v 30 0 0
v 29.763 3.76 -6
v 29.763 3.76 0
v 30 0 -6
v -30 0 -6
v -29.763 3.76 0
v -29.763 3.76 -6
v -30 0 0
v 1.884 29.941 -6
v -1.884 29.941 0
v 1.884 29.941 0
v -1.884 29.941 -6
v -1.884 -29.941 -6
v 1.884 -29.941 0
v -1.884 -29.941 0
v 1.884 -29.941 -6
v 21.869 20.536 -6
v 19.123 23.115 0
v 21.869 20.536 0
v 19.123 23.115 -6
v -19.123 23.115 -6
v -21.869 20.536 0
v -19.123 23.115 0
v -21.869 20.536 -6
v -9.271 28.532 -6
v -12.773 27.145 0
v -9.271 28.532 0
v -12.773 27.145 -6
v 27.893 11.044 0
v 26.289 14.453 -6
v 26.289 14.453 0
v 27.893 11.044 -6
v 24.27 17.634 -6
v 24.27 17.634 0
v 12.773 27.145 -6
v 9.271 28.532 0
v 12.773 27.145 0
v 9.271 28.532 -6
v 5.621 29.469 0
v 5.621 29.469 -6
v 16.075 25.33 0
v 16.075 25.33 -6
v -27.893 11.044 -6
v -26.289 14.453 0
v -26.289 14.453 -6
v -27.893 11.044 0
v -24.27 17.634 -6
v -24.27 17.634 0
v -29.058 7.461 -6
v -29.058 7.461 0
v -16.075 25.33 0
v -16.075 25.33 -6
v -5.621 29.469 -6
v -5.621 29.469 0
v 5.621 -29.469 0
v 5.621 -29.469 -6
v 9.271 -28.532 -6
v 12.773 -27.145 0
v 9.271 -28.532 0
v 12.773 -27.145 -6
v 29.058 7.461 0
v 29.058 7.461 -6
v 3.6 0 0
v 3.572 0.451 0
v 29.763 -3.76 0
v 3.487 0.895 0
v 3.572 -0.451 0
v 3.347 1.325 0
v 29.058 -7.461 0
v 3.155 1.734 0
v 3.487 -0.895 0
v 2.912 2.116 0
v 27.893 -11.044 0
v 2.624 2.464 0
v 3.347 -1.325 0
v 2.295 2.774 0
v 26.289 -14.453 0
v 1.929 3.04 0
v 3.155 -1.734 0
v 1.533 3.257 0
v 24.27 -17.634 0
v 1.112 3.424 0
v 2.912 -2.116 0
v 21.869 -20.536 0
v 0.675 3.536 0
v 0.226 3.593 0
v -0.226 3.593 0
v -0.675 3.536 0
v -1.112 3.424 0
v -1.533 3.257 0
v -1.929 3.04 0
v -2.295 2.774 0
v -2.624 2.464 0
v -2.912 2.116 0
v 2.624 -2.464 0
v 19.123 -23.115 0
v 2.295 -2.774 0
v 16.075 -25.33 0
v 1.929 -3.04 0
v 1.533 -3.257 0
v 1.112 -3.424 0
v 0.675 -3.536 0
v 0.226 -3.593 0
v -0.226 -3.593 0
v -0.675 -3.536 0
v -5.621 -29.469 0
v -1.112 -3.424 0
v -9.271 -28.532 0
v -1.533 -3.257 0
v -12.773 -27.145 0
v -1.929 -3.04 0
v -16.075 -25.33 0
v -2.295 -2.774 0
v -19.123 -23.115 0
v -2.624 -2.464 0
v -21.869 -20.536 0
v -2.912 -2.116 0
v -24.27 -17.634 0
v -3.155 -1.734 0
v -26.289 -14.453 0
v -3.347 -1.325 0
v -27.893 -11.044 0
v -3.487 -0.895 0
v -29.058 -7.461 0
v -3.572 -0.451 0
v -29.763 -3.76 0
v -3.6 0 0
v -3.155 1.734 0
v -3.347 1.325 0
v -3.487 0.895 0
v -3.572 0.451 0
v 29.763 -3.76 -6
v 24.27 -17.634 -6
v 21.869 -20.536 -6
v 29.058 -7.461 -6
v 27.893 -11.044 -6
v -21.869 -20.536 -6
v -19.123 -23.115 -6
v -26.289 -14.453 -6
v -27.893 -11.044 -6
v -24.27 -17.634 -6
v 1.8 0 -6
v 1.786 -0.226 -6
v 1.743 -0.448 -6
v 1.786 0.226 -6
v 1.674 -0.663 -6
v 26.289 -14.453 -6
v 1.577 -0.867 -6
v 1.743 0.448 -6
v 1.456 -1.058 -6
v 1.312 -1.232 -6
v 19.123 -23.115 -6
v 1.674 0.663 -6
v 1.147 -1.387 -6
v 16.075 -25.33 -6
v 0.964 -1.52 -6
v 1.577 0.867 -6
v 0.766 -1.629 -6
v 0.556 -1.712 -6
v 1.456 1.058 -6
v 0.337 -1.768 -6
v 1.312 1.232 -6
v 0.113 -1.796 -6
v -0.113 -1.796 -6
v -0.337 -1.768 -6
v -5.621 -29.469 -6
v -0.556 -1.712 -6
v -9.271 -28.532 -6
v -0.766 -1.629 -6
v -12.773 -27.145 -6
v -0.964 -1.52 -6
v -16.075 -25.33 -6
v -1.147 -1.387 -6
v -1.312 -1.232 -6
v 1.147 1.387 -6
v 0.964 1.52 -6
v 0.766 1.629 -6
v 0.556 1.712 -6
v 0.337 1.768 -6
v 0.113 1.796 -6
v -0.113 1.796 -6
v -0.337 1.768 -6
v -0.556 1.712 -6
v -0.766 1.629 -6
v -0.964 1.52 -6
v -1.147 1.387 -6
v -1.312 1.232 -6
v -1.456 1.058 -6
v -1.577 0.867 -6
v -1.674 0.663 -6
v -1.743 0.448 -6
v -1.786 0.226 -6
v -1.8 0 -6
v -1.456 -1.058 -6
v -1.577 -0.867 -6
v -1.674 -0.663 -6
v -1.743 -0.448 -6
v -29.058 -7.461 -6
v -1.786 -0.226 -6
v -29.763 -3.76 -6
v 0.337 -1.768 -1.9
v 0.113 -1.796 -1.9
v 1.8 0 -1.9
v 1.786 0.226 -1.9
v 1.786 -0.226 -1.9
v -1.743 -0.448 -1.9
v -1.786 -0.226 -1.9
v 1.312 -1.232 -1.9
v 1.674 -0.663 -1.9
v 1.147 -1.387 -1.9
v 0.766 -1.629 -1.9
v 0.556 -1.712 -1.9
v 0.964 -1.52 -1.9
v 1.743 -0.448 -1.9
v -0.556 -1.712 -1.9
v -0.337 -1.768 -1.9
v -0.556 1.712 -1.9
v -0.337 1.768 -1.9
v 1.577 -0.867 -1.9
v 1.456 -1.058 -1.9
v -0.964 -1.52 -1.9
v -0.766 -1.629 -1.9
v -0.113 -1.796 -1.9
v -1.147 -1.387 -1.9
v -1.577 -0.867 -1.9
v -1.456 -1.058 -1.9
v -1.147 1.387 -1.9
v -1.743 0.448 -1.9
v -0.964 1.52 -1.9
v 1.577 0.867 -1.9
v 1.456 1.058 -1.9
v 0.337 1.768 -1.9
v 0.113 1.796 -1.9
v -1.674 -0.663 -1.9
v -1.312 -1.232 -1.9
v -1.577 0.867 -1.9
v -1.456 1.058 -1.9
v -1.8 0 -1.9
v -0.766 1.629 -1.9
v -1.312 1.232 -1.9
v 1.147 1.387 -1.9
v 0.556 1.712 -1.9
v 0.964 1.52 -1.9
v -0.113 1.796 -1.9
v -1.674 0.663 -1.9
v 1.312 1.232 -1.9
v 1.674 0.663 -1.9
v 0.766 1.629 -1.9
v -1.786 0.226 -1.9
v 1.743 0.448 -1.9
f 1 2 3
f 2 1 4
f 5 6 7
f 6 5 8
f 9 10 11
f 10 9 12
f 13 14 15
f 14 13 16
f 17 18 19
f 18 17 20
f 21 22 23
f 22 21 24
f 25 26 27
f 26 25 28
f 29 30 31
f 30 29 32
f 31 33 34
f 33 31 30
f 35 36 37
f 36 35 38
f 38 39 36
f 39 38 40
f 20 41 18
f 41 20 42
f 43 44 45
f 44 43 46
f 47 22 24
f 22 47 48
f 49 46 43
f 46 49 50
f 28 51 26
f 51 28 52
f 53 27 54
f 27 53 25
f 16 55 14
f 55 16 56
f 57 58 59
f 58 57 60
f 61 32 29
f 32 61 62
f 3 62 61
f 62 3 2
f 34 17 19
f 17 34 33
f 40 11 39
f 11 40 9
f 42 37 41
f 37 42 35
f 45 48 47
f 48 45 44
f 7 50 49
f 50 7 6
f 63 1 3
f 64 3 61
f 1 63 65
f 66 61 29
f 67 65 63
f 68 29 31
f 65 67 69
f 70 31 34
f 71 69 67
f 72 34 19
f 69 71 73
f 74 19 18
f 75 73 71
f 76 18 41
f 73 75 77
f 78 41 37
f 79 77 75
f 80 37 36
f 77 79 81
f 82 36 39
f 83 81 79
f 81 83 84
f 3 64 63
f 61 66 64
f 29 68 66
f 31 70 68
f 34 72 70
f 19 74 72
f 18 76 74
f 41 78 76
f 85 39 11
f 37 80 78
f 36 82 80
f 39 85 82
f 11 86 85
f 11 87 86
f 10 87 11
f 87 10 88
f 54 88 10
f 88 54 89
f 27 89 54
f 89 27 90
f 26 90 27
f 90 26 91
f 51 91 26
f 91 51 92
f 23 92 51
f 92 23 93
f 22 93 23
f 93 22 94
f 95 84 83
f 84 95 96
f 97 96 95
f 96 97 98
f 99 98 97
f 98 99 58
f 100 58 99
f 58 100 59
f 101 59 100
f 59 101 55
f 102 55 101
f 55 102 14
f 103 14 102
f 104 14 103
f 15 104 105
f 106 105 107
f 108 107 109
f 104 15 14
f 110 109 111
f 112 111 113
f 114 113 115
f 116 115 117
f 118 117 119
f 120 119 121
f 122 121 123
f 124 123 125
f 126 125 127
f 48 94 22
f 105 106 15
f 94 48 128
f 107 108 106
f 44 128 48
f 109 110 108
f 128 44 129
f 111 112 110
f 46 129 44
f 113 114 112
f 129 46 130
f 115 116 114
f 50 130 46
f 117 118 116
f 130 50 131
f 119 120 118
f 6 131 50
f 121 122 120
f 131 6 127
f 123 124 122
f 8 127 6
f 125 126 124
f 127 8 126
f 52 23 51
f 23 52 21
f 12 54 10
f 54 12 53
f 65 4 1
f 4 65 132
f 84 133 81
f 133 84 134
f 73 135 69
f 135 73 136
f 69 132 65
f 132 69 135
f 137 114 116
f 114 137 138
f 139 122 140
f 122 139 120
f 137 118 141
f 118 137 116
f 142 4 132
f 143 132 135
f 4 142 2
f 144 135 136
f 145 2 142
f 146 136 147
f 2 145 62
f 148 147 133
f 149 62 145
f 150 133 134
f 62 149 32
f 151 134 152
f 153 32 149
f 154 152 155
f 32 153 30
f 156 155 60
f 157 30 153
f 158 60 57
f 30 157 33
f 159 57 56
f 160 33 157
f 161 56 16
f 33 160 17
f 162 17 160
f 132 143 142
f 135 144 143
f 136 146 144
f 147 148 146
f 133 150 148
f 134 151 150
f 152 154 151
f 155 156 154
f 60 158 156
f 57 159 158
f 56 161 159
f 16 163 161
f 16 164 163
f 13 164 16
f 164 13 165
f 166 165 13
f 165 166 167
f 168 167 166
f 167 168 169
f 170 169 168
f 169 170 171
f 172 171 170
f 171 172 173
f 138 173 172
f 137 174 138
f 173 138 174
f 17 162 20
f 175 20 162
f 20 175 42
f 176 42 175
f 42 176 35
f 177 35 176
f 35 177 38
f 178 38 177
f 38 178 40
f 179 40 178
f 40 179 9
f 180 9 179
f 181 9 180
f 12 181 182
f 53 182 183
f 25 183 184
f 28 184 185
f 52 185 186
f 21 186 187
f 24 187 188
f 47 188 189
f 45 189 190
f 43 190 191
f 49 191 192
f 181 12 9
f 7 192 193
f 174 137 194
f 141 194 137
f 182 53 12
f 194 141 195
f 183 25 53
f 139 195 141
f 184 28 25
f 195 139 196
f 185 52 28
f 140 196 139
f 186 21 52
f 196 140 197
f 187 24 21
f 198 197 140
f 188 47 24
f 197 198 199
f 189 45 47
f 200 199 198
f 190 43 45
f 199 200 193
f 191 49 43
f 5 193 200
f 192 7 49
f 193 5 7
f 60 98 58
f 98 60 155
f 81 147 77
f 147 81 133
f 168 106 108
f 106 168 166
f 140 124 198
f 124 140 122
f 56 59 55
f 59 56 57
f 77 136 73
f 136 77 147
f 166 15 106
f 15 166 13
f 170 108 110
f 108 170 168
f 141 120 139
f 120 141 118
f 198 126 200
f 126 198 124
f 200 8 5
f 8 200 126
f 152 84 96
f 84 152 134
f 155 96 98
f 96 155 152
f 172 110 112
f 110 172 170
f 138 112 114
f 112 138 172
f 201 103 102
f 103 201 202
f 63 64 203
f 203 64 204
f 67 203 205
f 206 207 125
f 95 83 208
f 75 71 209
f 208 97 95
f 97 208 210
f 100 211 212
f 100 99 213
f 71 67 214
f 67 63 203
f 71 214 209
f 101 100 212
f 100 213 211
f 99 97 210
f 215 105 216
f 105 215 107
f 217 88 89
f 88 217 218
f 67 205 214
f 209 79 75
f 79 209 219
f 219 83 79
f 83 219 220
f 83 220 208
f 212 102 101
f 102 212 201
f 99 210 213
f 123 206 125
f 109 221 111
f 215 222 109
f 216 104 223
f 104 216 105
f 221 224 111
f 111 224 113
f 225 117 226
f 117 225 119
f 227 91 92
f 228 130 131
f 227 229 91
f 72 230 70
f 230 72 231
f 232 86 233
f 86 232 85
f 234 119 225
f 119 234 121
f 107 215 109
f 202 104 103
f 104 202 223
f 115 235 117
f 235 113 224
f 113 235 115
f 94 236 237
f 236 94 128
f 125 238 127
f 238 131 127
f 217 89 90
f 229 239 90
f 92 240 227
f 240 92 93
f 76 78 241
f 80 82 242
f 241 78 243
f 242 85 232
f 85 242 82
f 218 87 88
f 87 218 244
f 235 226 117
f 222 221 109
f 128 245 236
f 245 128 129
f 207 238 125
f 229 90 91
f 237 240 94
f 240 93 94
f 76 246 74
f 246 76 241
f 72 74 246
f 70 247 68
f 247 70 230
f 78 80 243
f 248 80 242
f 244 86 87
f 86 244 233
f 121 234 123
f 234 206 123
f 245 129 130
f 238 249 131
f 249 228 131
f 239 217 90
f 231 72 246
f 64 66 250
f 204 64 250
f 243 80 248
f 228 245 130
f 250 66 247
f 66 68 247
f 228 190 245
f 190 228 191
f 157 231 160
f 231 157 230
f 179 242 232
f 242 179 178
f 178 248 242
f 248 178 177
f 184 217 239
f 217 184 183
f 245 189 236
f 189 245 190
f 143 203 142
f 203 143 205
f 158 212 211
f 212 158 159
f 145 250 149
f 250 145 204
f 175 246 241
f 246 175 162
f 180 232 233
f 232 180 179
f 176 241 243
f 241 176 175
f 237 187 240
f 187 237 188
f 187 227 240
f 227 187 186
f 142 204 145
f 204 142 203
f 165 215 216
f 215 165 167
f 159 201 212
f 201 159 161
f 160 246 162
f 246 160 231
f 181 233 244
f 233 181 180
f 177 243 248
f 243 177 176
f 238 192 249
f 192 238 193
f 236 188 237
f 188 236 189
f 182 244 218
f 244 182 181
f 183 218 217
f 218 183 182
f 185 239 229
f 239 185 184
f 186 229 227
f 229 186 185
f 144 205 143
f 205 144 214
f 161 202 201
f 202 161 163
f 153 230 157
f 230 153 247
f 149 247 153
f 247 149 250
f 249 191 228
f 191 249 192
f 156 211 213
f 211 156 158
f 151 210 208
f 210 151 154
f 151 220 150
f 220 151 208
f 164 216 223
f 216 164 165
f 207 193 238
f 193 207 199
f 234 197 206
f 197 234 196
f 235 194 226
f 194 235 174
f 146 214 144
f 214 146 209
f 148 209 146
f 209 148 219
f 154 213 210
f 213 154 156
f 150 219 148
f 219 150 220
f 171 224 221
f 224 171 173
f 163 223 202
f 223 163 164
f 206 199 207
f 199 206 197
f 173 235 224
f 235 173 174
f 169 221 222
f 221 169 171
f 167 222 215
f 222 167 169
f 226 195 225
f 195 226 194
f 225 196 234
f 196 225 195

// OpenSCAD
$fn = 50;


difference() {
	union() {
		translate(v = [0, 0, -6.0000000000]) {
			cylinder(h = 6, r = 30.0000000000);
		}
		translate(v = [0, 0, -6.0000000000]) {
			cylinder(h = 6, r = 2.8750000000);
		}
	}
	union() {
		translate(v = [0, 0, 0]) {
			rotate(a = [0, 0, 0]) {
				difference() {
					union() {
						translate(v = [0, 0, -6.0000000000]) {
							cylinder(h = 6, r = 1.5000000000);
						}
						translate(v = [0, 0, -1.9000000000]) {
							cylinder(h = 1.9000000000, r1 = 1.8000000000, r2 = 3.6000000000);
						}
						translate(v = [0, 0, -6.0000000000]) {
							cylinder(h = 6, r = 1.8000000000);
						}
						translate(v = [0, 0, -6.0000000000]) {
							cylinder(h = 6, r = 1.5000000000);
						}
					}
					union();
				}
			}
		}
	}
}
